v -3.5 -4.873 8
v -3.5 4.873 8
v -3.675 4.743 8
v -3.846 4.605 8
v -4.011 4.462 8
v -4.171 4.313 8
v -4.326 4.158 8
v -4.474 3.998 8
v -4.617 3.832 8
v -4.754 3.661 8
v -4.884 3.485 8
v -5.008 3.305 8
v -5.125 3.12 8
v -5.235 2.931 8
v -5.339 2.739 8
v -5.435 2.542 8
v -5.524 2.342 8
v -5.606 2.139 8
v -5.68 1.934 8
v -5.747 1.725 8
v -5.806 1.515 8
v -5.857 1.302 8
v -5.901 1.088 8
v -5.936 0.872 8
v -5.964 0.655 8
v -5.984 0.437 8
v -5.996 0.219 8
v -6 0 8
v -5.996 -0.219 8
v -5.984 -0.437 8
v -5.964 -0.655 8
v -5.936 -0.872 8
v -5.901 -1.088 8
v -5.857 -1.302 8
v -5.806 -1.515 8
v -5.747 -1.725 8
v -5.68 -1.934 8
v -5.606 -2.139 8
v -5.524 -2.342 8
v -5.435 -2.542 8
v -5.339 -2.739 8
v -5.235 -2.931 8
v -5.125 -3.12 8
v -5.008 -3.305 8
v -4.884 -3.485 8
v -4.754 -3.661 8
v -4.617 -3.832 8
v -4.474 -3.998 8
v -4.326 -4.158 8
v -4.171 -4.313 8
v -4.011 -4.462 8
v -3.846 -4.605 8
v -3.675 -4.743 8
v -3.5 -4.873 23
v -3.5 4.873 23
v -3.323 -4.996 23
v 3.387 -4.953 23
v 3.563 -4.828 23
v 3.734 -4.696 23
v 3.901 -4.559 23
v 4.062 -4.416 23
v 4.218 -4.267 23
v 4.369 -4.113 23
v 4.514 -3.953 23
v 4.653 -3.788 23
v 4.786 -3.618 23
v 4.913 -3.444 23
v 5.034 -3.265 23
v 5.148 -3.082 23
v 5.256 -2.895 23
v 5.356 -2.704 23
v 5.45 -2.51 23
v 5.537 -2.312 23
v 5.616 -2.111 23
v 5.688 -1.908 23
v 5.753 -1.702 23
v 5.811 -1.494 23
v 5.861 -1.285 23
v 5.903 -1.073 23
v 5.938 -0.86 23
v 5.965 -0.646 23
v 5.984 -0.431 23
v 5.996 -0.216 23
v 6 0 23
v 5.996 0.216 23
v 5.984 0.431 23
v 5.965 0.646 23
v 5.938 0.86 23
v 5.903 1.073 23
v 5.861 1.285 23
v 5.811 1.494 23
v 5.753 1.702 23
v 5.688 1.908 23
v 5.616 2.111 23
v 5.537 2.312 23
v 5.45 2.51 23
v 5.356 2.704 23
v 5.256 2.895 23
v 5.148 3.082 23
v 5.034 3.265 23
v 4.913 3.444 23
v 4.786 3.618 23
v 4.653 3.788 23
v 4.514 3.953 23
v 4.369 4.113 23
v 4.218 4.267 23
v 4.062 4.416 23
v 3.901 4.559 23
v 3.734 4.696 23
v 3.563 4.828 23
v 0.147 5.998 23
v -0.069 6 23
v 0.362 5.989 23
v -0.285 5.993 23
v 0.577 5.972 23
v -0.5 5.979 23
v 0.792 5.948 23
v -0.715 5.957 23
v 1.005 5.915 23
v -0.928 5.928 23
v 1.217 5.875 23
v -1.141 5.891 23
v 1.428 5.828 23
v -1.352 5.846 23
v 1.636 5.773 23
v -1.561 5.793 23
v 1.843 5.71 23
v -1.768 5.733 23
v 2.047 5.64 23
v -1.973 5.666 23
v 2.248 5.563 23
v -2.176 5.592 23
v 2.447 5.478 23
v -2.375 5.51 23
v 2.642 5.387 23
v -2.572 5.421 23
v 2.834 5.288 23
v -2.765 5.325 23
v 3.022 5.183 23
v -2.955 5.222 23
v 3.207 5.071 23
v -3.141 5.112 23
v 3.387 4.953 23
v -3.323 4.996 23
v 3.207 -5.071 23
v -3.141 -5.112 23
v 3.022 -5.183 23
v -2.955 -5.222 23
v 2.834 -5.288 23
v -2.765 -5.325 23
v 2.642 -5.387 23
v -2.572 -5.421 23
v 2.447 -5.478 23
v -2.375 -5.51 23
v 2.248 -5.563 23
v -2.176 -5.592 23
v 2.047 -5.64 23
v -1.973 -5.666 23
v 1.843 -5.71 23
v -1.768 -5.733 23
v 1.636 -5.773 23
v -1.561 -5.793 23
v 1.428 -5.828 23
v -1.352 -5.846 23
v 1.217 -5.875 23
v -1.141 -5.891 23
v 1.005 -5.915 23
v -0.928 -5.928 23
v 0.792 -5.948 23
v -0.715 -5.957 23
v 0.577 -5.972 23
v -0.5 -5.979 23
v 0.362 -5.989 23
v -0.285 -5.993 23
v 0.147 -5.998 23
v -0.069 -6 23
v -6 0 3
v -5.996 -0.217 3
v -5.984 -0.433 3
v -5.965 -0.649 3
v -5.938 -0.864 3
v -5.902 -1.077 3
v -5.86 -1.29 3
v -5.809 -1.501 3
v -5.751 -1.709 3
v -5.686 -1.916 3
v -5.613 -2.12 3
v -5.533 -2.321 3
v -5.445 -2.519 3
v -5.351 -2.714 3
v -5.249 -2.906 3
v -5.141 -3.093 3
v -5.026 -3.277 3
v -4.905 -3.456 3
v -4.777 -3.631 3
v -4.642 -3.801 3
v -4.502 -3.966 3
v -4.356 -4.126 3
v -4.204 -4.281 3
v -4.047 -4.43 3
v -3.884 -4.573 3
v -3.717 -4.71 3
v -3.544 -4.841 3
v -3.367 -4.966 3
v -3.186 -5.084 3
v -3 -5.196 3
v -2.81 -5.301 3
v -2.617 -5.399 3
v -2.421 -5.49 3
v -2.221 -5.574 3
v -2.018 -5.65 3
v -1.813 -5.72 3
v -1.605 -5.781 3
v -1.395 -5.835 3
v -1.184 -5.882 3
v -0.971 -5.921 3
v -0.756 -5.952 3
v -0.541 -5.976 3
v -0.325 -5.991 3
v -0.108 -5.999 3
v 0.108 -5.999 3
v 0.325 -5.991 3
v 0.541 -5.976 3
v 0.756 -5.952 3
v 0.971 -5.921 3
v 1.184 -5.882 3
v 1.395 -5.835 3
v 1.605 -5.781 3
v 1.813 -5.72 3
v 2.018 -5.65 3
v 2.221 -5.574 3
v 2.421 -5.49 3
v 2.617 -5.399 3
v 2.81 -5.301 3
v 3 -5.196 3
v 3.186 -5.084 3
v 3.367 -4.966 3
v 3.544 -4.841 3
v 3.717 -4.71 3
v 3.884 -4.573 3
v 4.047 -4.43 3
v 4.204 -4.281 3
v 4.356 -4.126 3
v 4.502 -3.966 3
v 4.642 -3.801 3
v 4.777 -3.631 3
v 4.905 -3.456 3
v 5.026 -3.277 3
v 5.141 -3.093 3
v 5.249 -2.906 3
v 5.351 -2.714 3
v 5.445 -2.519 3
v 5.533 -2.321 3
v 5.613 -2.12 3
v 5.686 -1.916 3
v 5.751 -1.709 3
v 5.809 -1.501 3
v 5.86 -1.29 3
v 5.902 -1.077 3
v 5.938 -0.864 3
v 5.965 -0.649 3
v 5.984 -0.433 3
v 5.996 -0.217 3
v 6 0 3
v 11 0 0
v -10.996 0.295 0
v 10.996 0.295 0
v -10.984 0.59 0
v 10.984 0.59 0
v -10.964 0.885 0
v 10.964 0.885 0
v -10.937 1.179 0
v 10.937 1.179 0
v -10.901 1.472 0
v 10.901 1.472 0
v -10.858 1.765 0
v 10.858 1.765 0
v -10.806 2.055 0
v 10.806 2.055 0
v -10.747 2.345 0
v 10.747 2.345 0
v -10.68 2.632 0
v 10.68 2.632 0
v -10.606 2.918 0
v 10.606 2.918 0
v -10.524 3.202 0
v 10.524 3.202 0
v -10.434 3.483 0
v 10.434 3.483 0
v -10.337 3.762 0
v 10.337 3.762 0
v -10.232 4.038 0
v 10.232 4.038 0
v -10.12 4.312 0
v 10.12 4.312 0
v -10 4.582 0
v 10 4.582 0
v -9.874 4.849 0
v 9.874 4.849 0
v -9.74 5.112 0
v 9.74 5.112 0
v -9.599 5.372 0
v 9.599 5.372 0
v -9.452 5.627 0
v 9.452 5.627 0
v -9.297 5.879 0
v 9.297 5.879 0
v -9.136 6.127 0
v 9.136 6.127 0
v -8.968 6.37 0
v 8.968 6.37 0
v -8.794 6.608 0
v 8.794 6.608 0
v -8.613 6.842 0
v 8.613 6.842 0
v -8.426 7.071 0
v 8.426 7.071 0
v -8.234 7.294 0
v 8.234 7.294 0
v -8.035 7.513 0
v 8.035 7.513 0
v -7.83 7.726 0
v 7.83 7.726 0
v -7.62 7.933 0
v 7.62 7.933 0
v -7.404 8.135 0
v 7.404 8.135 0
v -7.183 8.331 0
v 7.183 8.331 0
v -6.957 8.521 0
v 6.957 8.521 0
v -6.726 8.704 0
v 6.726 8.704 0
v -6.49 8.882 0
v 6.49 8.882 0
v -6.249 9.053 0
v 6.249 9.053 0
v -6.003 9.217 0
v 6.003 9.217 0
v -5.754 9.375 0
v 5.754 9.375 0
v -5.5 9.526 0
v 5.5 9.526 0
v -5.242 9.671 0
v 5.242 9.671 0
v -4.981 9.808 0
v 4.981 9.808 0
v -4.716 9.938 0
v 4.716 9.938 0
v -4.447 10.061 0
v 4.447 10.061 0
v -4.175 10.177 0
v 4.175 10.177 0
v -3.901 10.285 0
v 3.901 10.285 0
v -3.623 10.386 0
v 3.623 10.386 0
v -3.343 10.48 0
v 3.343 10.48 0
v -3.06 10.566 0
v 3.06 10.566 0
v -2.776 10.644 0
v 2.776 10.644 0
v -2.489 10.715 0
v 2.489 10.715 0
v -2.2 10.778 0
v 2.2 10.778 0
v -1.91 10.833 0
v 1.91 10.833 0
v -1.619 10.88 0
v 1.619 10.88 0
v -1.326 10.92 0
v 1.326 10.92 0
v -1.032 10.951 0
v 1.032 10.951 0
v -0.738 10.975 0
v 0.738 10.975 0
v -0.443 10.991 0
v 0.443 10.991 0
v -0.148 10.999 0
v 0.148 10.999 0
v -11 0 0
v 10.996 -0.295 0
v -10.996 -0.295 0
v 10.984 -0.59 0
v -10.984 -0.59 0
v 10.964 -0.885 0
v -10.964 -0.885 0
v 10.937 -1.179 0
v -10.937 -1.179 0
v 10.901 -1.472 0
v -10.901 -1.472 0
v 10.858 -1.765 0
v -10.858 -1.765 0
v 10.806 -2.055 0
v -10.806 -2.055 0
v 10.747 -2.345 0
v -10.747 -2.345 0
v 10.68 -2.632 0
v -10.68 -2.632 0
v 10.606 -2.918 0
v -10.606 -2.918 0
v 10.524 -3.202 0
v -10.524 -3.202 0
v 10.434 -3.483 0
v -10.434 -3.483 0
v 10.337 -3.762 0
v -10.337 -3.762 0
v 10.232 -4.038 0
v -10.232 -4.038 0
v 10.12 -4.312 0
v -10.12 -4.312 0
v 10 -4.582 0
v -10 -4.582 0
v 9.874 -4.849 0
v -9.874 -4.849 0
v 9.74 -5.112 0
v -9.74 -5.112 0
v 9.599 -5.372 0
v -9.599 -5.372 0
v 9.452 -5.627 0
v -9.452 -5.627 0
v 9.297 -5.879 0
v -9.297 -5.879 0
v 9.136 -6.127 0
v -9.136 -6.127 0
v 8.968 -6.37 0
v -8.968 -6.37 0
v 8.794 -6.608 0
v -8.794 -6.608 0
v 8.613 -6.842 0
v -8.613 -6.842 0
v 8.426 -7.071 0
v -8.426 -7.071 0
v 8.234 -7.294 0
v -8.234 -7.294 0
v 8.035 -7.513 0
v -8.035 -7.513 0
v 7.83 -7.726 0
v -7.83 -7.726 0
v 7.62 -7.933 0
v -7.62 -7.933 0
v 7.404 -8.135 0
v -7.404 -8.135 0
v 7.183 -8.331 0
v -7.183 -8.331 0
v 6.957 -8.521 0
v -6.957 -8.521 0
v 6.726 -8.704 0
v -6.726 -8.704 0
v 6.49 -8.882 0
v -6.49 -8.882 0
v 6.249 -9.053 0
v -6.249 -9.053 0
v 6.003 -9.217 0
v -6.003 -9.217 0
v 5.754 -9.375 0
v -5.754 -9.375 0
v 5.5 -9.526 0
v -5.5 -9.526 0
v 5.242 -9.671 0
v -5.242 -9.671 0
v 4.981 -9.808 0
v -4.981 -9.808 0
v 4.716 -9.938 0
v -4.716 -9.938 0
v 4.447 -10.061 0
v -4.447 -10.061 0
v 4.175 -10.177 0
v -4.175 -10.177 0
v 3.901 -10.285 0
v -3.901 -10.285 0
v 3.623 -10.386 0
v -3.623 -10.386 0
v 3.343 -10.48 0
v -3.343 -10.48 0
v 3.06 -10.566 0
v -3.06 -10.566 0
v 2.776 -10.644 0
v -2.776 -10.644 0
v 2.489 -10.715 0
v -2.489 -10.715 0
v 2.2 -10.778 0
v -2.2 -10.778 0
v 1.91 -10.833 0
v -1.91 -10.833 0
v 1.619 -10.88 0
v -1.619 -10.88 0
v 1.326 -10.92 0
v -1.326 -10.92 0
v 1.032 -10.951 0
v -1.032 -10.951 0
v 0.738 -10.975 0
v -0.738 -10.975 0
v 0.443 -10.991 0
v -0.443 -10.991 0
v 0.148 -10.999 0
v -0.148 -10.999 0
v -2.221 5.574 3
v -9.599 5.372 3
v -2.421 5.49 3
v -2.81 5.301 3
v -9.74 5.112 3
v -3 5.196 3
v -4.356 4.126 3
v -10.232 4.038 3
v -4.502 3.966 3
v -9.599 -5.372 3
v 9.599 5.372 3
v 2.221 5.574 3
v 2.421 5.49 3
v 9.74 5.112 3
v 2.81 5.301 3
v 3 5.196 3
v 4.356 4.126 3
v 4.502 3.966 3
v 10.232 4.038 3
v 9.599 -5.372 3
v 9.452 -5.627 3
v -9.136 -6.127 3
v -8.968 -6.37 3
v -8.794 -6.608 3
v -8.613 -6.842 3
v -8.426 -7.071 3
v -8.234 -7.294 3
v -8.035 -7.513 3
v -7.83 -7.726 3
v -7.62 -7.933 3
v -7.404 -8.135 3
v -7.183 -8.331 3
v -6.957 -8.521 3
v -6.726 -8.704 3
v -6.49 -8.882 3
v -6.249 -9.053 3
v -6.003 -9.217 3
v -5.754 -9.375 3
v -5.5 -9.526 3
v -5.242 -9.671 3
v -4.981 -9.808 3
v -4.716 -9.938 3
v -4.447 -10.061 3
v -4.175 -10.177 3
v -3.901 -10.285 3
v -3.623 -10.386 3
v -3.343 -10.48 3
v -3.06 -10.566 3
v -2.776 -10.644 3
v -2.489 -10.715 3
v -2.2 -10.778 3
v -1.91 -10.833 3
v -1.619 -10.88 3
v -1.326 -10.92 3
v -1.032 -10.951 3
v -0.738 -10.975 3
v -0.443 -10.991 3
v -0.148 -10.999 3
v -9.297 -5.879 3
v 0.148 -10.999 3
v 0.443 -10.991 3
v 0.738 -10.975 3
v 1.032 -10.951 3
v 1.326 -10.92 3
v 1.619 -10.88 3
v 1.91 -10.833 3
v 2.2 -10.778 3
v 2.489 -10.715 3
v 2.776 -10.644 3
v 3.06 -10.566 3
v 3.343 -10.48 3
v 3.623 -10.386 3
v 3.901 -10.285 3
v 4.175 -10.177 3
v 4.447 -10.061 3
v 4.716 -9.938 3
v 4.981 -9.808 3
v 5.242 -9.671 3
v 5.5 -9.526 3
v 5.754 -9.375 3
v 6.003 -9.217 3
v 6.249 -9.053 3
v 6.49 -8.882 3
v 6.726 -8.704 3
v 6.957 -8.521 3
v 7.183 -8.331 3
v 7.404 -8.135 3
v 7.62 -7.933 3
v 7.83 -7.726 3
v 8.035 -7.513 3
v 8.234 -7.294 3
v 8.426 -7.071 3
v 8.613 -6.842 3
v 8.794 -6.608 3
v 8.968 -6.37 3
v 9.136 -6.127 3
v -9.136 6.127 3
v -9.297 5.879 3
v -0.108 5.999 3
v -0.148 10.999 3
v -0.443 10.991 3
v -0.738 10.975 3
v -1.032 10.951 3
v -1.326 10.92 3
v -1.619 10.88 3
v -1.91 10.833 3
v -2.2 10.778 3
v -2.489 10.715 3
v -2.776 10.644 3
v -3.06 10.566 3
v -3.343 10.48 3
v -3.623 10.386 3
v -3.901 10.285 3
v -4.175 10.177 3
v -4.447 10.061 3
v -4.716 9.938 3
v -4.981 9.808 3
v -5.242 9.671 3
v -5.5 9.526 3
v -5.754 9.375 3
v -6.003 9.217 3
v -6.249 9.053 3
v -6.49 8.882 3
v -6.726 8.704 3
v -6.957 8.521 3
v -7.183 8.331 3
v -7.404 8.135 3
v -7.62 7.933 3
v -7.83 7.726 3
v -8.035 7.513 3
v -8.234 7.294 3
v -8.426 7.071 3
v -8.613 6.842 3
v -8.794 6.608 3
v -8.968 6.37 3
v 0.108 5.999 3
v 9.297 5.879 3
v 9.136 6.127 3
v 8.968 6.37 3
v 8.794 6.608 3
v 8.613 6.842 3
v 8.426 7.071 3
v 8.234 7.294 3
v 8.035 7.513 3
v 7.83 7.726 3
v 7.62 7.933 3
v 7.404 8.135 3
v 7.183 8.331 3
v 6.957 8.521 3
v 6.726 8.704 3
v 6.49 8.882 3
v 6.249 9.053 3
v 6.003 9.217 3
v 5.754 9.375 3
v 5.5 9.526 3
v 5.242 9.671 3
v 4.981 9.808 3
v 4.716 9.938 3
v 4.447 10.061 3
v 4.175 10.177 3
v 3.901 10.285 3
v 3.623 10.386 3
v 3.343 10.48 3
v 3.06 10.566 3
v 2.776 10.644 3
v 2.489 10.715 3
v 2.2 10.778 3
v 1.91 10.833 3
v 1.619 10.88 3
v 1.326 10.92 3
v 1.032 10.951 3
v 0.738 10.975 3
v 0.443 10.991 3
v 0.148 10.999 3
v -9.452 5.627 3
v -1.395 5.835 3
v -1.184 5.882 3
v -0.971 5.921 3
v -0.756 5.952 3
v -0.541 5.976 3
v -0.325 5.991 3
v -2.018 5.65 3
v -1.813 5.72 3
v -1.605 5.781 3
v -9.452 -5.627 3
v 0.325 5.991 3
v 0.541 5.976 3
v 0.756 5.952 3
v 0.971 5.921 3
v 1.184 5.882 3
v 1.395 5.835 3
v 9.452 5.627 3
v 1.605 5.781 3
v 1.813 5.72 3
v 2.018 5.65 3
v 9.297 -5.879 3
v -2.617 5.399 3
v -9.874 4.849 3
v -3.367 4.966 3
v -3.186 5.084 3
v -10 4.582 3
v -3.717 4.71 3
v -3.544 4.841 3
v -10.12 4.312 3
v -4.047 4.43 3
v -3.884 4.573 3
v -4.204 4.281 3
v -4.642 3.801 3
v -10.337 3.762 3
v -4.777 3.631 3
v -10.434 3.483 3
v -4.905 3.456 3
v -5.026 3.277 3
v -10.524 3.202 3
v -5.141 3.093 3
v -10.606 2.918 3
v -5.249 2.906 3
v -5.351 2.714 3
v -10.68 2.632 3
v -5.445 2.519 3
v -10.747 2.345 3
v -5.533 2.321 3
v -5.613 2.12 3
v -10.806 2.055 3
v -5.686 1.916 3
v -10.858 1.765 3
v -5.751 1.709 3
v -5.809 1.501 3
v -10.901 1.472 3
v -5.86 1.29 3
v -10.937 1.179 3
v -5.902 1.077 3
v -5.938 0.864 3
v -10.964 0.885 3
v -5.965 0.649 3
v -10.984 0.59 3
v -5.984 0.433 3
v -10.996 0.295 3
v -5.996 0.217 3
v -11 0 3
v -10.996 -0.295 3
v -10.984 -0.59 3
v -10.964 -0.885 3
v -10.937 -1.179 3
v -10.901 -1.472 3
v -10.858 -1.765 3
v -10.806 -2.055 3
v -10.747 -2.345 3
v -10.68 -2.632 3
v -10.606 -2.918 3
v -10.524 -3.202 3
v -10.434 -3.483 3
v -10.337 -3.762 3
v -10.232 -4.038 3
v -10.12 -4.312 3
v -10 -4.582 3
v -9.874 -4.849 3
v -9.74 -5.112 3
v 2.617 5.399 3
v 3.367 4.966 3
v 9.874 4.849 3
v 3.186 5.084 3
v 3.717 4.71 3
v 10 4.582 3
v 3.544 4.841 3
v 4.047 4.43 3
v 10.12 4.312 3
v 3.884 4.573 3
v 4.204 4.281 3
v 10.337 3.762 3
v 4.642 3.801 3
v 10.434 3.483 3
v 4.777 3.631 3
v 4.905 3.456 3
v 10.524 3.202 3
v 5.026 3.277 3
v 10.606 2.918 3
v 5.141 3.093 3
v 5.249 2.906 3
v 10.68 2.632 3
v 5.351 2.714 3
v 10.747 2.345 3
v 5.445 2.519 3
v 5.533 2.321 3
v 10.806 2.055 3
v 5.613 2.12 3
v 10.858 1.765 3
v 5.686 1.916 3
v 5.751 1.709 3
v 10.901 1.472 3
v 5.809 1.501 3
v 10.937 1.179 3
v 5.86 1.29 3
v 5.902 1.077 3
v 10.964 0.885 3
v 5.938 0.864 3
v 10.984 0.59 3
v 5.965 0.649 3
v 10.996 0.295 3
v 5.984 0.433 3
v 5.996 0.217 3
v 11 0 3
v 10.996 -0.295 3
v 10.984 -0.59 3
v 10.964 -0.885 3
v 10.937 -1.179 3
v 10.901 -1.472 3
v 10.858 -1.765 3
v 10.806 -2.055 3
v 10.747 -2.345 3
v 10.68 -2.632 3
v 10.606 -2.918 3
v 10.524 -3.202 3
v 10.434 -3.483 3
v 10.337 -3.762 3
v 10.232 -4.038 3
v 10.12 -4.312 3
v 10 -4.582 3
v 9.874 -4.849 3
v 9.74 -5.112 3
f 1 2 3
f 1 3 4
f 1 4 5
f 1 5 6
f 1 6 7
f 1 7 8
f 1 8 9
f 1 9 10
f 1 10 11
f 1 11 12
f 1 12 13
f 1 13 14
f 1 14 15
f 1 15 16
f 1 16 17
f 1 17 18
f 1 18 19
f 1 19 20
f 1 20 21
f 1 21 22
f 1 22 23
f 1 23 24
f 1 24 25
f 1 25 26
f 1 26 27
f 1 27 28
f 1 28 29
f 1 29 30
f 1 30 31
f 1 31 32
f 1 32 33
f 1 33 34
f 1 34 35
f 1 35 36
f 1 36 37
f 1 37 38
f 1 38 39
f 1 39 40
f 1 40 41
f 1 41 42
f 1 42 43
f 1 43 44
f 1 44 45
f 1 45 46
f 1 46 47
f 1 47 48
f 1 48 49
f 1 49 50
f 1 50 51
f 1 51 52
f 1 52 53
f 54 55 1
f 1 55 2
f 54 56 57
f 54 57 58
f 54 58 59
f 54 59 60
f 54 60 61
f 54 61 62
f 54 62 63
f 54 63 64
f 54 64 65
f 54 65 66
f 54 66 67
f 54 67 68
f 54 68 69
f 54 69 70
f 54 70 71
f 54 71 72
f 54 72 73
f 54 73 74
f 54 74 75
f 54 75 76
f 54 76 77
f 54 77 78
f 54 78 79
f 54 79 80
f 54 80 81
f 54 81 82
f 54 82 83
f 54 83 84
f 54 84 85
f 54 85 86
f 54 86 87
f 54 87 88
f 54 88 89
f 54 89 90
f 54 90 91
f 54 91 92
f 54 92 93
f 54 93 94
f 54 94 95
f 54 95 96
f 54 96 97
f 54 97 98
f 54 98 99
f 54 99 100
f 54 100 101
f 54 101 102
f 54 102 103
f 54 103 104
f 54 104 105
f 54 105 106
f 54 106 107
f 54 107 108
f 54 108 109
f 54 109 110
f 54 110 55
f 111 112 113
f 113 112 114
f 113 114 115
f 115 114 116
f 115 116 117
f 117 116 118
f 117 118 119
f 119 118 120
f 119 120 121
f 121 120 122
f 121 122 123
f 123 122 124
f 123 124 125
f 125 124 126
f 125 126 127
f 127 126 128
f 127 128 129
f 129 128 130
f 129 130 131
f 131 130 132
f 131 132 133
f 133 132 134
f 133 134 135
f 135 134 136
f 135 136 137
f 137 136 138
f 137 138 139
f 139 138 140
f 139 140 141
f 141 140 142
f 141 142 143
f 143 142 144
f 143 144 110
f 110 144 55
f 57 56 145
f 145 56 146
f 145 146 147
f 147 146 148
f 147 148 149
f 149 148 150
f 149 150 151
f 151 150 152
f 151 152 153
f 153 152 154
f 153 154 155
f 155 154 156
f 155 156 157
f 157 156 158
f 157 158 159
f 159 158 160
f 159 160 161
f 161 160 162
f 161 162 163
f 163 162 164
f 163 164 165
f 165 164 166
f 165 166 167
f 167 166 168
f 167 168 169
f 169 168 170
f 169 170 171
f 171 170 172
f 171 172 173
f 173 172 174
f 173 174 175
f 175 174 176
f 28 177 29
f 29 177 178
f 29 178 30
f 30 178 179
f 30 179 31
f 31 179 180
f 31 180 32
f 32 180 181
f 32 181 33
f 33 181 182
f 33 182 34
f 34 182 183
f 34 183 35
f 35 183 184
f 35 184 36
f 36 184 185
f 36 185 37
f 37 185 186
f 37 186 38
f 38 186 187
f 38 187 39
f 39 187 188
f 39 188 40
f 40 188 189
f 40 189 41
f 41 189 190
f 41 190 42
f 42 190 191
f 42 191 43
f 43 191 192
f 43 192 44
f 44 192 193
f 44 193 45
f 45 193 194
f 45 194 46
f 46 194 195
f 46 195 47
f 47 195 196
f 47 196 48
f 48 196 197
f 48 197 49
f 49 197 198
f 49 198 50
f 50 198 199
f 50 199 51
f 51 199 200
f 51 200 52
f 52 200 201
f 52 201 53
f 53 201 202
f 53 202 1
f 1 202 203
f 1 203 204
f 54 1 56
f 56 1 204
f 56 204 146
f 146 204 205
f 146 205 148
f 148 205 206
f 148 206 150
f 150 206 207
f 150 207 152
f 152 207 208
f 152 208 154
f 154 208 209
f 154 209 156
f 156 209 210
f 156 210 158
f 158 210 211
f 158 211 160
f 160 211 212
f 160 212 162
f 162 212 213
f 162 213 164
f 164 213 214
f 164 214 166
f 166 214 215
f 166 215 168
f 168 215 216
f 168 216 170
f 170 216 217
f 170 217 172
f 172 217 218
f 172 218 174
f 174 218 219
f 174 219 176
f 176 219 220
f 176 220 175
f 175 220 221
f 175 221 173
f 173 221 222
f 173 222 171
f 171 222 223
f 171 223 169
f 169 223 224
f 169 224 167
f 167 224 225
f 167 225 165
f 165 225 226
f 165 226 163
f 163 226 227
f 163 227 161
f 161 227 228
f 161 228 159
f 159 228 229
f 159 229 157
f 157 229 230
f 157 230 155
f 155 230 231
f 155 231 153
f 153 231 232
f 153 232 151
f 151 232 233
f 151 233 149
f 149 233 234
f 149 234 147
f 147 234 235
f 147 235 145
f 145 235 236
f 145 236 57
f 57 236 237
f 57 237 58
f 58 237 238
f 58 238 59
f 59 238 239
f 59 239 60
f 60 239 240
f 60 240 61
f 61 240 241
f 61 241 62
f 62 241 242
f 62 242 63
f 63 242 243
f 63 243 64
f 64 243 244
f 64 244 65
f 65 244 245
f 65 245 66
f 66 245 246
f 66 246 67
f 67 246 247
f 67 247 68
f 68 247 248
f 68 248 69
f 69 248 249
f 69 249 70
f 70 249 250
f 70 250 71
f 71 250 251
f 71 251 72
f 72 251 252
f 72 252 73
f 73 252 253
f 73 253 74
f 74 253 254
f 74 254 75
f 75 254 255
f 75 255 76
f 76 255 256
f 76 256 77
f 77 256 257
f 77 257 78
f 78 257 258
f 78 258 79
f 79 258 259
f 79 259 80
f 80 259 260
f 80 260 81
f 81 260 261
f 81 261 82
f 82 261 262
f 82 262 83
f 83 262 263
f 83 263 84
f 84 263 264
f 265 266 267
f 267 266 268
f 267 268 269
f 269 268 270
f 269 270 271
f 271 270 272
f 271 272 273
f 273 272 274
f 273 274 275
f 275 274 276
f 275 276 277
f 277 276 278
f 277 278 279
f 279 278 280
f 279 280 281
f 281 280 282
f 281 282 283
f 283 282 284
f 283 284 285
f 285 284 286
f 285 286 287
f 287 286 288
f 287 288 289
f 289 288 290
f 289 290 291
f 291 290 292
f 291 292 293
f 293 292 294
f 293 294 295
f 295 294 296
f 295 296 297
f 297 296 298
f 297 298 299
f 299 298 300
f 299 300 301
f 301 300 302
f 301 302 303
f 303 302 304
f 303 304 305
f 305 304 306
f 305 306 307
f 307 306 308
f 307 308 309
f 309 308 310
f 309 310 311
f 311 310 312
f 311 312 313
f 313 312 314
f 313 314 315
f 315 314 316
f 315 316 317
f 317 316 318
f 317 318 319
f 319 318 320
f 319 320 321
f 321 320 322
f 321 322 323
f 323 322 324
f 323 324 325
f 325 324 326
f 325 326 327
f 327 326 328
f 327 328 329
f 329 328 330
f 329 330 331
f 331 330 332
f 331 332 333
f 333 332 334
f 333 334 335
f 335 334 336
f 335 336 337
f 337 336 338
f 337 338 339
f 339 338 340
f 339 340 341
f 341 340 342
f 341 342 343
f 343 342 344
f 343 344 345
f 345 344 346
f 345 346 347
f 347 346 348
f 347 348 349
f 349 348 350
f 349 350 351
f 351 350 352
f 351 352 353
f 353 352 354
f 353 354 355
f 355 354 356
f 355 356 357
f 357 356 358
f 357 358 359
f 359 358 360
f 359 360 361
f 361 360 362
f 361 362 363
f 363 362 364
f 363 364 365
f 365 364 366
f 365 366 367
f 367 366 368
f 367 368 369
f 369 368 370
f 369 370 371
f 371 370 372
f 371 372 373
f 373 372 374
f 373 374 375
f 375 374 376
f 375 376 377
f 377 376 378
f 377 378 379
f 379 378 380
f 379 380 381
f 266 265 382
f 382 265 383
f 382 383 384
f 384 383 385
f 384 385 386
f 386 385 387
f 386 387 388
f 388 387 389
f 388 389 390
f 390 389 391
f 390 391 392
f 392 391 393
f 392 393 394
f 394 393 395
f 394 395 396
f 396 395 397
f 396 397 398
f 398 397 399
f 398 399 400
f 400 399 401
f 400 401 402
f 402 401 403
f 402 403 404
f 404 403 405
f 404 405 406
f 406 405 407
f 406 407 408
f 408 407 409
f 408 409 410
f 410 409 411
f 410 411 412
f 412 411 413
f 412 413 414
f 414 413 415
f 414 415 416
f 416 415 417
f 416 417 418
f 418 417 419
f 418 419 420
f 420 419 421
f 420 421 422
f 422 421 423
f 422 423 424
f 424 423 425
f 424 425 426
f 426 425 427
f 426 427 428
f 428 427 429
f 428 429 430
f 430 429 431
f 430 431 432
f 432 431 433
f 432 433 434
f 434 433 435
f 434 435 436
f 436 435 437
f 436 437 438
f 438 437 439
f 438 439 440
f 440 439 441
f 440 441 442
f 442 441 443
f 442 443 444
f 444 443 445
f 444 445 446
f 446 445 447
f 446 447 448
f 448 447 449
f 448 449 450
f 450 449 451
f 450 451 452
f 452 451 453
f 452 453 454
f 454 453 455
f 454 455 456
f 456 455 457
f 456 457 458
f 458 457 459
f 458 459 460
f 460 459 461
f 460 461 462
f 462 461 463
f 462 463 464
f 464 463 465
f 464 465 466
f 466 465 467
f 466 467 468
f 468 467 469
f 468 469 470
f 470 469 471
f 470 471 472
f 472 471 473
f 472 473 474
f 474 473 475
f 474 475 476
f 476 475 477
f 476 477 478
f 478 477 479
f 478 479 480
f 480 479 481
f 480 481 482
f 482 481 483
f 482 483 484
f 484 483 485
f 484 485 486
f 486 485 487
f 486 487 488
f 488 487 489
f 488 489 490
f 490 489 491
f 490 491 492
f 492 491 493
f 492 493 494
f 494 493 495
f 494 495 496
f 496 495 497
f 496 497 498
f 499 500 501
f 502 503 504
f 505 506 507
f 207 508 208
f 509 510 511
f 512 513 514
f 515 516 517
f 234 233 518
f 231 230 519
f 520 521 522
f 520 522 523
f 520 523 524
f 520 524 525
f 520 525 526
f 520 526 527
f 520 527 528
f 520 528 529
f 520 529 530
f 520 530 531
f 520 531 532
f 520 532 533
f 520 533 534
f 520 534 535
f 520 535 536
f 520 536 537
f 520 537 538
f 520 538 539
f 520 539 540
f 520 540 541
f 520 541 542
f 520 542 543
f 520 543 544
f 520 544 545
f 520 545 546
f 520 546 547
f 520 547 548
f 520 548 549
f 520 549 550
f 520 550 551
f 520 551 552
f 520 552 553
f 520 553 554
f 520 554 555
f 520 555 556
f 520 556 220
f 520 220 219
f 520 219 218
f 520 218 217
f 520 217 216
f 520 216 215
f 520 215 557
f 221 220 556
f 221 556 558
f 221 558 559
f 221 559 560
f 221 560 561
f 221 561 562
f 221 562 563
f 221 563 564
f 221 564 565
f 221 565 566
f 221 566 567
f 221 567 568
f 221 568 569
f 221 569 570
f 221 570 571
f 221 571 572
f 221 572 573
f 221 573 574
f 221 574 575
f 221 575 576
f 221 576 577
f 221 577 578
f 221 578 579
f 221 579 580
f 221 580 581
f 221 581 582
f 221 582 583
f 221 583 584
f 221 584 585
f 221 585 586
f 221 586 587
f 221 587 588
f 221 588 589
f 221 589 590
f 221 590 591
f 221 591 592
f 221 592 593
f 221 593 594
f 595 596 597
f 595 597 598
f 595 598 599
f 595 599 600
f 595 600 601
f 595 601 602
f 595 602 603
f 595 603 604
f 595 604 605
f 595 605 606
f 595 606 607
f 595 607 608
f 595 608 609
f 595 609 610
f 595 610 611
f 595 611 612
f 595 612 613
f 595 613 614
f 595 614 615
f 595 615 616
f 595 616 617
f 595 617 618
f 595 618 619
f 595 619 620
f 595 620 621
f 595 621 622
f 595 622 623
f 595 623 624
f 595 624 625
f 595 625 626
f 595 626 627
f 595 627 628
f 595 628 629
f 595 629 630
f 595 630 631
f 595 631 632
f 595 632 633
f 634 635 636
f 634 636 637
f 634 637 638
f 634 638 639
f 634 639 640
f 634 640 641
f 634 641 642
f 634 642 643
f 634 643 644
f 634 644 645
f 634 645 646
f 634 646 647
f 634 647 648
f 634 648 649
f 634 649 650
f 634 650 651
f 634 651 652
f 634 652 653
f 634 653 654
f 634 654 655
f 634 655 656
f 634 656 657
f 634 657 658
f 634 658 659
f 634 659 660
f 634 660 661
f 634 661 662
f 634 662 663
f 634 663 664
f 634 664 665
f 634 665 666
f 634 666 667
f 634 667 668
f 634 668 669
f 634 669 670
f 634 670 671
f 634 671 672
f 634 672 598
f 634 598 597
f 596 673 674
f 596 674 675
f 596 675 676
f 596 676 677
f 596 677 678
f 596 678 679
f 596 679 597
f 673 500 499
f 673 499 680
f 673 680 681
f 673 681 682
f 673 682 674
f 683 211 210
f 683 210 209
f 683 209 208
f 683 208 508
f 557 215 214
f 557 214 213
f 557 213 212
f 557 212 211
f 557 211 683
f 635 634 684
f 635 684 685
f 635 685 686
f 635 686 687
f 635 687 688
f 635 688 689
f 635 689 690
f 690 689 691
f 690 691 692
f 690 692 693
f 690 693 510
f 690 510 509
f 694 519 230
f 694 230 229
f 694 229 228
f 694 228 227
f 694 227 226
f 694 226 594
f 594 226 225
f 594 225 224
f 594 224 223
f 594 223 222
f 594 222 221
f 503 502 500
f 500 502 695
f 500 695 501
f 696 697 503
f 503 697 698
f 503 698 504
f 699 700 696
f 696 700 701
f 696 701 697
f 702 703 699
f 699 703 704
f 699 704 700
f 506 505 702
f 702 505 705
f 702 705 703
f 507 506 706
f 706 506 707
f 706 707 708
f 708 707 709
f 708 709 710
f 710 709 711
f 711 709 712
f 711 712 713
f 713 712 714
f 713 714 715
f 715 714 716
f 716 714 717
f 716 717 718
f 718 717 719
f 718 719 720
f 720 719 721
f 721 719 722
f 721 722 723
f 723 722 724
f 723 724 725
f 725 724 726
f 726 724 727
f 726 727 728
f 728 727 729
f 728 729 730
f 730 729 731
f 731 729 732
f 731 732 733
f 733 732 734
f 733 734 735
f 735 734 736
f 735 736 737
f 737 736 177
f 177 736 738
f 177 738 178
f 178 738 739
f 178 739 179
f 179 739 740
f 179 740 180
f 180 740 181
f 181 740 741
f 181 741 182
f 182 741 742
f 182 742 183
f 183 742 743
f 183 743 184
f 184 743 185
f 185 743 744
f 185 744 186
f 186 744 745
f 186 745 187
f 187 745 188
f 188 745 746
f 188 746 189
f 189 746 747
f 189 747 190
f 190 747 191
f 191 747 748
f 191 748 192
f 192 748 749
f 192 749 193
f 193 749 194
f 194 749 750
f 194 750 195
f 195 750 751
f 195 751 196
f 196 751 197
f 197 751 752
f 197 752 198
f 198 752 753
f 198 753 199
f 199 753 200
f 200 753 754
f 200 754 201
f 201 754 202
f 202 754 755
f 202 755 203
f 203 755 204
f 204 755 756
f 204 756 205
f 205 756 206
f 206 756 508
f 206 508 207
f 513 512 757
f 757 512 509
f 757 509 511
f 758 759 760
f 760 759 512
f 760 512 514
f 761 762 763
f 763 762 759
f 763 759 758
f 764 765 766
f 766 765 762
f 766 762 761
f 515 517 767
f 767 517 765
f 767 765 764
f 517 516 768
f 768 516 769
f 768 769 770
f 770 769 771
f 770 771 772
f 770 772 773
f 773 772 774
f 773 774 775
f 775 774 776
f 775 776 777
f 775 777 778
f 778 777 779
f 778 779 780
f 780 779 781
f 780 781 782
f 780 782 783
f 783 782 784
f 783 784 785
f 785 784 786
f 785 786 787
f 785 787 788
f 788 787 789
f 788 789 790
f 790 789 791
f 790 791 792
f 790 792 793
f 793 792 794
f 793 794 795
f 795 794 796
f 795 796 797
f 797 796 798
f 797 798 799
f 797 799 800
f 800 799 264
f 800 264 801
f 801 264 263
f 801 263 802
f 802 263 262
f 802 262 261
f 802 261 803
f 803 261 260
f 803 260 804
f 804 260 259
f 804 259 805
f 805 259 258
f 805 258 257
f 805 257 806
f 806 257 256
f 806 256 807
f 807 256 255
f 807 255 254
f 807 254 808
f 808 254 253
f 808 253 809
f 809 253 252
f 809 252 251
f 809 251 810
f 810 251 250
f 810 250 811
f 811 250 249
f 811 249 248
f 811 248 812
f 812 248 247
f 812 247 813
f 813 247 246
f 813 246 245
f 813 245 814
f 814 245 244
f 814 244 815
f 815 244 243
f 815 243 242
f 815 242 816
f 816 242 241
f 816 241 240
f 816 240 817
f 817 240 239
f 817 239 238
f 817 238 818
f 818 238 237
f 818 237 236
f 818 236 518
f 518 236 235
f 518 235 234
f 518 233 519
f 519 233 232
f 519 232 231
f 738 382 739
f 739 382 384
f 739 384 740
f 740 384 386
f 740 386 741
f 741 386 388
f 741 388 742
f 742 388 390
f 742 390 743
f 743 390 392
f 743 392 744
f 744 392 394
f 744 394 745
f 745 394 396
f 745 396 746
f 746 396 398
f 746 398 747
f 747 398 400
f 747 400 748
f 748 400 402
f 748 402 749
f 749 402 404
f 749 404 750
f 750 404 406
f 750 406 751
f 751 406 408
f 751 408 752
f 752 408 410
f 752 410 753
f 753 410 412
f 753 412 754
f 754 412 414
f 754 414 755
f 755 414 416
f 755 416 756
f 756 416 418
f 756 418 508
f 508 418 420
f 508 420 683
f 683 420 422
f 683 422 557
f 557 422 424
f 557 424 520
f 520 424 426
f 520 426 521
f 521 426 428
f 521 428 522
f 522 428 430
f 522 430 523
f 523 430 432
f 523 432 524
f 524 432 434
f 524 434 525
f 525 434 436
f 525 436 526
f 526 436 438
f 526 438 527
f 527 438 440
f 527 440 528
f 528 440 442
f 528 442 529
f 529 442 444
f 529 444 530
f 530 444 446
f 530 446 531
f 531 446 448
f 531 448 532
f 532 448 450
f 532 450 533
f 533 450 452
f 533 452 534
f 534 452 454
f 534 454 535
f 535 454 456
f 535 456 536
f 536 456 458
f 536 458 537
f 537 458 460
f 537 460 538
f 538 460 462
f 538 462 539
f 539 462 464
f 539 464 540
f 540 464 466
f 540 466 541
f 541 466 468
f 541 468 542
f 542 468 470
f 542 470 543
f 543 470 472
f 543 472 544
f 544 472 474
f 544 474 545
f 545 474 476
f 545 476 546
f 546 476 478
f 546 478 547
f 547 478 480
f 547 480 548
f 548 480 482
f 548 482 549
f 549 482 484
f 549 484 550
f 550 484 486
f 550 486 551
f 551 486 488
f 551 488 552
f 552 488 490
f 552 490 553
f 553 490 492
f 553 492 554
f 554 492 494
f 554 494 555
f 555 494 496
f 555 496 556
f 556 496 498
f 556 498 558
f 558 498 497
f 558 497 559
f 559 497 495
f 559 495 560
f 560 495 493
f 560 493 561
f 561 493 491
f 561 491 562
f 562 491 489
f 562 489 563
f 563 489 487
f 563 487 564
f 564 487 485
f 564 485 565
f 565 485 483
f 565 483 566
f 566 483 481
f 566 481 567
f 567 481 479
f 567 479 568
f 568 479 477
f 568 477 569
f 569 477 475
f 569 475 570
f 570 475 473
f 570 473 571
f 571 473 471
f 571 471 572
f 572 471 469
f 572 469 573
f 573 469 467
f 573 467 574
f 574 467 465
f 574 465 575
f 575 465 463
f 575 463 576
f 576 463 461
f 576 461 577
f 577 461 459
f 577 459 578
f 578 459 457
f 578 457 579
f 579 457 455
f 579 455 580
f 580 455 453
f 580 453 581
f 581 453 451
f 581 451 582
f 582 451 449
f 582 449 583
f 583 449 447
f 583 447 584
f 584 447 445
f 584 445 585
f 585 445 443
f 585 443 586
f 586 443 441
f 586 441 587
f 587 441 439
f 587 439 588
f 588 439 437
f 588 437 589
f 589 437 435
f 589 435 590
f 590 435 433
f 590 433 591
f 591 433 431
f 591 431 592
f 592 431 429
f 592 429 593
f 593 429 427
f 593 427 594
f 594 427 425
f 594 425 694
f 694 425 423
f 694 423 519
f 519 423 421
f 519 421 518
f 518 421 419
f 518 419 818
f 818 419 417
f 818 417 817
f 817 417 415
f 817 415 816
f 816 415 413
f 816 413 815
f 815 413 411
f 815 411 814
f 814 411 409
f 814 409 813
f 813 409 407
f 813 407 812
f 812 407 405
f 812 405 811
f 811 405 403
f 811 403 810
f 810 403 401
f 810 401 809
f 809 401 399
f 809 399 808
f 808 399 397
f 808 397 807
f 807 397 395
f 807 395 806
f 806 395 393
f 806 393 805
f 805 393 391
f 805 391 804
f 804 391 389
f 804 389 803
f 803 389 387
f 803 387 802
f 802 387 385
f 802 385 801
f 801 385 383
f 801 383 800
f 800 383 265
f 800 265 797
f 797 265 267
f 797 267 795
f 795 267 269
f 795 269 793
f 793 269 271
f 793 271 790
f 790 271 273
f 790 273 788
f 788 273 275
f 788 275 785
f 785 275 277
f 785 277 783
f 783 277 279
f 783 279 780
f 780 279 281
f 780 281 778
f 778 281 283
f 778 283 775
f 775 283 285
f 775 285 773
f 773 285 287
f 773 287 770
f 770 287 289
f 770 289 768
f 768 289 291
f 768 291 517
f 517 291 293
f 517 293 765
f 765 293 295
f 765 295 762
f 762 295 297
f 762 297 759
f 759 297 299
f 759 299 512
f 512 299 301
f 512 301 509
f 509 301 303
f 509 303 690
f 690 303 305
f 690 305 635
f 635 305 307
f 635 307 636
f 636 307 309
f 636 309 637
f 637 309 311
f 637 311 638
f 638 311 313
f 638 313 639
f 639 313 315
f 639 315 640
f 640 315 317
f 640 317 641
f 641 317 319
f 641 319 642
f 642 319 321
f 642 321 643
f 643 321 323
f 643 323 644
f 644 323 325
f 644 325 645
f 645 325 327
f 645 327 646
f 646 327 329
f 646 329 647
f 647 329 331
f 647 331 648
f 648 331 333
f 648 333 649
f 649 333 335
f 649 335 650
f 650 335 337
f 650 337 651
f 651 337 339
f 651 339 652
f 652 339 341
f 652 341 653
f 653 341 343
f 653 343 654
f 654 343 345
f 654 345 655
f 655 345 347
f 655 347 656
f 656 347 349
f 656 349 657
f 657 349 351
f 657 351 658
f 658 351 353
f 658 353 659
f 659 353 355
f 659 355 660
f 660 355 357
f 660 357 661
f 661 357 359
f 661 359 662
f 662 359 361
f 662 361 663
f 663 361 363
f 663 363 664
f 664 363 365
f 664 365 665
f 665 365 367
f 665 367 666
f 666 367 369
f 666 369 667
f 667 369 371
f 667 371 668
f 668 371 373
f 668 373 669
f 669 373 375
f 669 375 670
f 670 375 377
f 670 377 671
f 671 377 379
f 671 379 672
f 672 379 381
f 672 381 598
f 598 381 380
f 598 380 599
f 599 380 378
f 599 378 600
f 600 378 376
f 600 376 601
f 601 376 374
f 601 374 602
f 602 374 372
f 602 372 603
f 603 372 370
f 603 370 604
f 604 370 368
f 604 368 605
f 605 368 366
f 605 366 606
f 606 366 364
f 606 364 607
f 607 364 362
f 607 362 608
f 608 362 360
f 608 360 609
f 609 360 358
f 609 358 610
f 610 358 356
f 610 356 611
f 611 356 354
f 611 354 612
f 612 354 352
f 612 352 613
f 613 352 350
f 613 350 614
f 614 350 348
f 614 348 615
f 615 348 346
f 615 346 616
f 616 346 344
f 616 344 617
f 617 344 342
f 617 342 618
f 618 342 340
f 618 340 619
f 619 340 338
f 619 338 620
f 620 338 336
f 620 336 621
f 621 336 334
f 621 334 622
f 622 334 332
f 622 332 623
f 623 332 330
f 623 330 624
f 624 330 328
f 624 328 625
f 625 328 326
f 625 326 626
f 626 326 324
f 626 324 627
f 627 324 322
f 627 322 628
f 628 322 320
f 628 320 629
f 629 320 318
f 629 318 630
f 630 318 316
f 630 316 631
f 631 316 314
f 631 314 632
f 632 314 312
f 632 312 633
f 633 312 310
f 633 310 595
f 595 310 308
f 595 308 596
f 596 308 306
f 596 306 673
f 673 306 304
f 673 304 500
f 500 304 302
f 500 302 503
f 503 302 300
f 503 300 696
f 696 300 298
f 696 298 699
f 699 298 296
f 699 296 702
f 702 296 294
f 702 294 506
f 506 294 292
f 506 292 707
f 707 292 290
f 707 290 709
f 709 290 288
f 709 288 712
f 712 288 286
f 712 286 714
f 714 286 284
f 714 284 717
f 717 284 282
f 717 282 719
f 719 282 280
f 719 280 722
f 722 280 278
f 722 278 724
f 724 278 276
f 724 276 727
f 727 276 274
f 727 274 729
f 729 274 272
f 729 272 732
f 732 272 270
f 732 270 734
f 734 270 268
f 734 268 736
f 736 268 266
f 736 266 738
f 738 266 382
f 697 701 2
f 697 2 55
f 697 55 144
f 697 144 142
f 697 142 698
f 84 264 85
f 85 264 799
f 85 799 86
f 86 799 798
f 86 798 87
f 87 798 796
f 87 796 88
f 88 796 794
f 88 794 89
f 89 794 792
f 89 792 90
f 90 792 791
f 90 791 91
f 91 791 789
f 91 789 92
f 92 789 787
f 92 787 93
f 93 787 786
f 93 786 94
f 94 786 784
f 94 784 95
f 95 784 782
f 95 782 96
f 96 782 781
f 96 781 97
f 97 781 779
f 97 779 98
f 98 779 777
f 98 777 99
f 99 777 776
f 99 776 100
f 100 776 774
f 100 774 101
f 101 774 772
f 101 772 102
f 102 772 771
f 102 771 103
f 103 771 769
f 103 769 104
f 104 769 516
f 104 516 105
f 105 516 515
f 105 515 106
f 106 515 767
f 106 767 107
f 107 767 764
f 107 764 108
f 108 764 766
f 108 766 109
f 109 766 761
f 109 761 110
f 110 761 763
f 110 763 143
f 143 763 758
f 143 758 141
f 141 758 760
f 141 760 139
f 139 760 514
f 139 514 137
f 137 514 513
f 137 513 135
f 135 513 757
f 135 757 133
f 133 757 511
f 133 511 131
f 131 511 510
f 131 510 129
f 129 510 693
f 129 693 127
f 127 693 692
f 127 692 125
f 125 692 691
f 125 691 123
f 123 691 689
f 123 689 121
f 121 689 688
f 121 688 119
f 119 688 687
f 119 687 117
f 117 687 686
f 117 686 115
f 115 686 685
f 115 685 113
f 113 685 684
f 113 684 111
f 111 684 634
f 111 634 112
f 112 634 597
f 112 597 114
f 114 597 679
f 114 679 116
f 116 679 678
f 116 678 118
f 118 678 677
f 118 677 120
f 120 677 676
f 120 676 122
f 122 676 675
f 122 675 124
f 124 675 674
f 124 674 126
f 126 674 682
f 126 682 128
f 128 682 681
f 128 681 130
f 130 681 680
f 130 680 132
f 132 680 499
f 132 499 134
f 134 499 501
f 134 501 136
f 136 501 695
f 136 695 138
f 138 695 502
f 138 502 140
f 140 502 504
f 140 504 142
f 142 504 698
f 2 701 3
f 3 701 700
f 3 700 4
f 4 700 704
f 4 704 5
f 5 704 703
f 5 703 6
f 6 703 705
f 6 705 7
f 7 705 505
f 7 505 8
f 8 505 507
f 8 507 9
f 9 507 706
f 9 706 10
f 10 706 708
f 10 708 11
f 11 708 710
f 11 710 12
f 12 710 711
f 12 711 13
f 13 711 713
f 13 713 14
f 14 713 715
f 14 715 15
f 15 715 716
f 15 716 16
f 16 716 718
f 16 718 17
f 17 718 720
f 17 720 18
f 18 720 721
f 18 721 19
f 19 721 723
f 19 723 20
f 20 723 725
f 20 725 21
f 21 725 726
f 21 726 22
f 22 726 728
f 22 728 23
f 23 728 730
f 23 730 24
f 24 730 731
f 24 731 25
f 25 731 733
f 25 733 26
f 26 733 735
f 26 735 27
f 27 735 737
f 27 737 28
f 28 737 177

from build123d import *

# Parameters (mm, degrees)
SKETCH1_R           = 11
BOSS_EXTRUDE1_DEPTH = 3
SKETCH2_R           = 6
BOSS_EXTRUDE2_DEPTH = 20
CUT_EXTRUDE1_DEPTH  = 15


with BuildPart() as part:
    # Sketch1 → Boss-Extrude1 (new body)
    with BuildSketch(Plane.XY):
        Circle(SKETCH1_R)
    extrude(amount=BOSS_EXTRUDE1_DEPTH)

    # Sketch2 → Boss-Extrude2 (add)
    with BuildSketch(Plane.XY.offset(3)):
        Circle(SKETCH2_R)
    extrude(amount=BOSS_EXTRUDE2_DEPTH)

    # Sketch3 → Cut-Extrude1 (cut)
    with BuildSketch(Plane.XY.offset(23)):
        with BuildLine():
            Line((-3.5, 4.873397172), (-3.5, -4.873397172))
            ThreePointArc((-3.5, -4.873397172), (-6, 0), (-3.5, 4.873397172))
        make_face()
    extrude(amount=-CUT_EXTRUDE1_DEPTH, mode=Mode.SUBTRACT)


solid = part.part
